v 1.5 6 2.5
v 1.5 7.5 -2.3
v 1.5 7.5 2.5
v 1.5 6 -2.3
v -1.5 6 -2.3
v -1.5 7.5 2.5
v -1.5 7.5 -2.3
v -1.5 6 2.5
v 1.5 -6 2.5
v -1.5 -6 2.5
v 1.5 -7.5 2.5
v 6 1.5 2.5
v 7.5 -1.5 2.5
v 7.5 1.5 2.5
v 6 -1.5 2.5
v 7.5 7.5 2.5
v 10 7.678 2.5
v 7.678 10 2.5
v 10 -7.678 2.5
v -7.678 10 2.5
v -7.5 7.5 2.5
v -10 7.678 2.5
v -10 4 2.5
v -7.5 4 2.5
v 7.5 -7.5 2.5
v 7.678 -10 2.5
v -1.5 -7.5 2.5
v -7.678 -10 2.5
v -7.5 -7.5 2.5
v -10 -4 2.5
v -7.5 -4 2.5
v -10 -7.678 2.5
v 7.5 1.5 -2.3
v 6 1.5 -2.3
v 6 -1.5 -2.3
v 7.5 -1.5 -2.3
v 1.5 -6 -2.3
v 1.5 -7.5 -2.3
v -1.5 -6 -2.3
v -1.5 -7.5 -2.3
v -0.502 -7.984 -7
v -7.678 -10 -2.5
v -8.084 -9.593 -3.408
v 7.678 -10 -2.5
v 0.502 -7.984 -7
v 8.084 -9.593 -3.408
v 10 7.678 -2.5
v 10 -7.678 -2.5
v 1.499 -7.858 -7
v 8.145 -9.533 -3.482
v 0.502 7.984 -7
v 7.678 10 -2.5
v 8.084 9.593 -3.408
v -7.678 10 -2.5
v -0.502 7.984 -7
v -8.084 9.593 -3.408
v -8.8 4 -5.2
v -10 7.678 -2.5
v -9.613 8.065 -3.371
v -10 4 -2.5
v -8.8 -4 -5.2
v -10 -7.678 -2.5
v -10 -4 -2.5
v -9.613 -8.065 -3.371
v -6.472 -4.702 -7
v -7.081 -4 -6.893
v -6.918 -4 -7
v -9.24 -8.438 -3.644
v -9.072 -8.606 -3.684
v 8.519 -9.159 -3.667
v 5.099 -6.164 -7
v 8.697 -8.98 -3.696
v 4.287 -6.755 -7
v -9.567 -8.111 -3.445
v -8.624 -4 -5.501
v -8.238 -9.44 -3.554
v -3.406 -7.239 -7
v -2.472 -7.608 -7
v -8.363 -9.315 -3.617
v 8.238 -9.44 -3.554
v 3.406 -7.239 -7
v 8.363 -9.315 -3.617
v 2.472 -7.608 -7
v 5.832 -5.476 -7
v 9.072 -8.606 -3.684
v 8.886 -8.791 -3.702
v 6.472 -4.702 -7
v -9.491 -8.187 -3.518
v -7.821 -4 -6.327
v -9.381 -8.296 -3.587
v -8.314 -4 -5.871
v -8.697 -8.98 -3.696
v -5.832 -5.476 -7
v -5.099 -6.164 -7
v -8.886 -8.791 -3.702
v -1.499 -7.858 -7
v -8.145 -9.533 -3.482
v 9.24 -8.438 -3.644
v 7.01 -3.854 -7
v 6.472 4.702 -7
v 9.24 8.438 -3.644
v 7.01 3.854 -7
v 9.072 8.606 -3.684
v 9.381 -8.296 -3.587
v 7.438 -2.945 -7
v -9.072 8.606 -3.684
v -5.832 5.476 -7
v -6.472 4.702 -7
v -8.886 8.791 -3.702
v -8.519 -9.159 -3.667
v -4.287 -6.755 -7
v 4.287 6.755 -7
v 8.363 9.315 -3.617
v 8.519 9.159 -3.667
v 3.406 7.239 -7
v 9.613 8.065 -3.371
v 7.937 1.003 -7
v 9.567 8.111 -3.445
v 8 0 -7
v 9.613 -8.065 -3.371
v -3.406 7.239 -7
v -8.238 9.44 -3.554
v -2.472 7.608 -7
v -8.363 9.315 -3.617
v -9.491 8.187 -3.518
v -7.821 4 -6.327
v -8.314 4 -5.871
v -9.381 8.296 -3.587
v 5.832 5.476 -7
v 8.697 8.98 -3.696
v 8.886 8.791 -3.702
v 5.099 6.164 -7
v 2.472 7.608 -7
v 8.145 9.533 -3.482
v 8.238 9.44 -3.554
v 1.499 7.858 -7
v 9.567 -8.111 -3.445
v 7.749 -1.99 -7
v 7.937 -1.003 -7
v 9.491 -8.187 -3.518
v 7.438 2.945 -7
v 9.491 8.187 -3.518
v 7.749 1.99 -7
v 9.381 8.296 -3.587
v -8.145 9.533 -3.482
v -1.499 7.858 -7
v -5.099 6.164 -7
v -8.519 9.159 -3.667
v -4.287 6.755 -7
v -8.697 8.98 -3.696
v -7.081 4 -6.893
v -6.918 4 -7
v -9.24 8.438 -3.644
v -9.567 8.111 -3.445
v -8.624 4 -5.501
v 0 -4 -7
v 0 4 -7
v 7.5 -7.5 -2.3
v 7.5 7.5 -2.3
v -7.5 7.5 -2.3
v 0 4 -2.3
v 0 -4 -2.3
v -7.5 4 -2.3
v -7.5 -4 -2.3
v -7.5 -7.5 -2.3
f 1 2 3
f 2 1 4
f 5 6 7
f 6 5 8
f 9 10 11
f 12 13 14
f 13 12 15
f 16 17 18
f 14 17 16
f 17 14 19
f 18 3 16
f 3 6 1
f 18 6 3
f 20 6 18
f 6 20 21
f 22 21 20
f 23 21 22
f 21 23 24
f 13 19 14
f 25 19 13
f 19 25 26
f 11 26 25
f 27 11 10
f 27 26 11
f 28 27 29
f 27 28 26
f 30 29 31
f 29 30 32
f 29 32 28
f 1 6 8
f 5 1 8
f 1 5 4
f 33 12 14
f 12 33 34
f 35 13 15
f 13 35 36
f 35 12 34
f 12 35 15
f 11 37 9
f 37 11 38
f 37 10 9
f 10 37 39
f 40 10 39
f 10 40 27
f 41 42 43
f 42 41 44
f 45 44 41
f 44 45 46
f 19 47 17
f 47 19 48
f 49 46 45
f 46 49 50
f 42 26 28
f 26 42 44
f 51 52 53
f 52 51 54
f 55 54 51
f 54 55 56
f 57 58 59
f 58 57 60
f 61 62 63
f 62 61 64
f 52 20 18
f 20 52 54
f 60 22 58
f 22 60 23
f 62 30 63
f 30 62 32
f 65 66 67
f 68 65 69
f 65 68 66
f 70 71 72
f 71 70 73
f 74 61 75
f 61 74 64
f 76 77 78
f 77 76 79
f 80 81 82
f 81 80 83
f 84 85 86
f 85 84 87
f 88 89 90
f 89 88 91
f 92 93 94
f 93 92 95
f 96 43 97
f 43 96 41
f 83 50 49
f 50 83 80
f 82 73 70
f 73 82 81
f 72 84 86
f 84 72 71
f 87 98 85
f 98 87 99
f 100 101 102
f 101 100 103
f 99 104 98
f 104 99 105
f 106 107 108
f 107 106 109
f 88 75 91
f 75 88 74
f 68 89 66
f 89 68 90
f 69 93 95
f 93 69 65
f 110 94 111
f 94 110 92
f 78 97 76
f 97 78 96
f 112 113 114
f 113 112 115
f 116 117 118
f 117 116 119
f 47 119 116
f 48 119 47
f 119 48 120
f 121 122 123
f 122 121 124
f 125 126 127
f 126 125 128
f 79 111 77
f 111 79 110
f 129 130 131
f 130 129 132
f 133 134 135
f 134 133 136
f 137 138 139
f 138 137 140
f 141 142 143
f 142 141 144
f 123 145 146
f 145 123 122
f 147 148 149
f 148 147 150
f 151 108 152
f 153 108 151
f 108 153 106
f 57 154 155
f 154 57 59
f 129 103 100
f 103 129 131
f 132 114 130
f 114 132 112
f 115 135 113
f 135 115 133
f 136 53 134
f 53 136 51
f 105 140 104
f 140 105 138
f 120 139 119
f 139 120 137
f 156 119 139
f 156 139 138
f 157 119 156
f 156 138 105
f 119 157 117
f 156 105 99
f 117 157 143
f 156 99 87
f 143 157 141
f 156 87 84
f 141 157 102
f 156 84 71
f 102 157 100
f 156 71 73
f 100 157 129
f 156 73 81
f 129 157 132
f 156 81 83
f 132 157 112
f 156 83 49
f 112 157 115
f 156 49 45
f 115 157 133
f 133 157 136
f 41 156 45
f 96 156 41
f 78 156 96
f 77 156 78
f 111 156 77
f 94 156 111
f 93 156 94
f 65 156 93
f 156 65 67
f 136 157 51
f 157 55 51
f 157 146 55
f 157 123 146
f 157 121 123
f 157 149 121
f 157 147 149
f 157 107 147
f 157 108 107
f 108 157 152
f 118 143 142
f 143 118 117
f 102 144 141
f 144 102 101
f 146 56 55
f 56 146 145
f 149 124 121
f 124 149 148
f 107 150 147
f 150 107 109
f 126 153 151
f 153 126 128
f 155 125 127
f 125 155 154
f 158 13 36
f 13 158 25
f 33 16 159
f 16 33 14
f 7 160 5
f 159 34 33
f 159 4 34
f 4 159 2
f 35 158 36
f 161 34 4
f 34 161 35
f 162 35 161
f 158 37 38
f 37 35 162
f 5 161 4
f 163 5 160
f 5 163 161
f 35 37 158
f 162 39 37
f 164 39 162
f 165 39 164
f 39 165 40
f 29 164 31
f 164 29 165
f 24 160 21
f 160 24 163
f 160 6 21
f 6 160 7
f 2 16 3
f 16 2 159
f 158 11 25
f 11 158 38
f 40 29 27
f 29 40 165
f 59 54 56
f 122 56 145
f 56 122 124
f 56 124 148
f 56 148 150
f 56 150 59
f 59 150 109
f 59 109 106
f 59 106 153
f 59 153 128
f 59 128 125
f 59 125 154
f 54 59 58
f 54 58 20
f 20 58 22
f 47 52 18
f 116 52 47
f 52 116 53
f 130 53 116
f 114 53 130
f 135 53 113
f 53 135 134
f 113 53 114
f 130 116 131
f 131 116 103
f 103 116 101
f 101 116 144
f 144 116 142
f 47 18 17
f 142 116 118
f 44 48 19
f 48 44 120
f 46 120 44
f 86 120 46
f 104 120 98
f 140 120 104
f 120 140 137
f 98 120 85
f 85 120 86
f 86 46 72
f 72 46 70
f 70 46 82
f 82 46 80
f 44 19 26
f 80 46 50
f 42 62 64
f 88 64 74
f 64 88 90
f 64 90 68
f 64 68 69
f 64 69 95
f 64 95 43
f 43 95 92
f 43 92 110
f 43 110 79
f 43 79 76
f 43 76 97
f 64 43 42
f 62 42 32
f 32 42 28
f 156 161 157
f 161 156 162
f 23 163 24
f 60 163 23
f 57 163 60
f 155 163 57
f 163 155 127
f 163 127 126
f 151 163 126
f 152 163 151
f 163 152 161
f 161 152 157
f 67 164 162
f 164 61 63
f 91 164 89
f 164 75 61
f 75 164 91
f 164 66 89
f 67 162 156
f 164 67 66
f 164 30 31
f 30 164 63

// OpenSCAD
$fn=50;
tol=0.2;

rotate([0,180,0]) foot();

module foot() {
  difference() {
    union() {
      for(i=[0,90,180,270])
        rotate([0,0,i])
          translate([0,15/2,0]) cube([3,3,5],center=true);
      intersection() {
        rotate([0,0,45]) cube([25,25,50],center=true);
        difference() {
          hull() {
            cube([20,20,5],center=true);
            translate([0,0,5]) cylinder(r=16/2,h=2);
          }
          translate([0,0,-tol]) cube([15,15,5],center=true);
        }
      }
    }
    translate([10,0,0]) cube([20,8,20],center=true);
  }
}
